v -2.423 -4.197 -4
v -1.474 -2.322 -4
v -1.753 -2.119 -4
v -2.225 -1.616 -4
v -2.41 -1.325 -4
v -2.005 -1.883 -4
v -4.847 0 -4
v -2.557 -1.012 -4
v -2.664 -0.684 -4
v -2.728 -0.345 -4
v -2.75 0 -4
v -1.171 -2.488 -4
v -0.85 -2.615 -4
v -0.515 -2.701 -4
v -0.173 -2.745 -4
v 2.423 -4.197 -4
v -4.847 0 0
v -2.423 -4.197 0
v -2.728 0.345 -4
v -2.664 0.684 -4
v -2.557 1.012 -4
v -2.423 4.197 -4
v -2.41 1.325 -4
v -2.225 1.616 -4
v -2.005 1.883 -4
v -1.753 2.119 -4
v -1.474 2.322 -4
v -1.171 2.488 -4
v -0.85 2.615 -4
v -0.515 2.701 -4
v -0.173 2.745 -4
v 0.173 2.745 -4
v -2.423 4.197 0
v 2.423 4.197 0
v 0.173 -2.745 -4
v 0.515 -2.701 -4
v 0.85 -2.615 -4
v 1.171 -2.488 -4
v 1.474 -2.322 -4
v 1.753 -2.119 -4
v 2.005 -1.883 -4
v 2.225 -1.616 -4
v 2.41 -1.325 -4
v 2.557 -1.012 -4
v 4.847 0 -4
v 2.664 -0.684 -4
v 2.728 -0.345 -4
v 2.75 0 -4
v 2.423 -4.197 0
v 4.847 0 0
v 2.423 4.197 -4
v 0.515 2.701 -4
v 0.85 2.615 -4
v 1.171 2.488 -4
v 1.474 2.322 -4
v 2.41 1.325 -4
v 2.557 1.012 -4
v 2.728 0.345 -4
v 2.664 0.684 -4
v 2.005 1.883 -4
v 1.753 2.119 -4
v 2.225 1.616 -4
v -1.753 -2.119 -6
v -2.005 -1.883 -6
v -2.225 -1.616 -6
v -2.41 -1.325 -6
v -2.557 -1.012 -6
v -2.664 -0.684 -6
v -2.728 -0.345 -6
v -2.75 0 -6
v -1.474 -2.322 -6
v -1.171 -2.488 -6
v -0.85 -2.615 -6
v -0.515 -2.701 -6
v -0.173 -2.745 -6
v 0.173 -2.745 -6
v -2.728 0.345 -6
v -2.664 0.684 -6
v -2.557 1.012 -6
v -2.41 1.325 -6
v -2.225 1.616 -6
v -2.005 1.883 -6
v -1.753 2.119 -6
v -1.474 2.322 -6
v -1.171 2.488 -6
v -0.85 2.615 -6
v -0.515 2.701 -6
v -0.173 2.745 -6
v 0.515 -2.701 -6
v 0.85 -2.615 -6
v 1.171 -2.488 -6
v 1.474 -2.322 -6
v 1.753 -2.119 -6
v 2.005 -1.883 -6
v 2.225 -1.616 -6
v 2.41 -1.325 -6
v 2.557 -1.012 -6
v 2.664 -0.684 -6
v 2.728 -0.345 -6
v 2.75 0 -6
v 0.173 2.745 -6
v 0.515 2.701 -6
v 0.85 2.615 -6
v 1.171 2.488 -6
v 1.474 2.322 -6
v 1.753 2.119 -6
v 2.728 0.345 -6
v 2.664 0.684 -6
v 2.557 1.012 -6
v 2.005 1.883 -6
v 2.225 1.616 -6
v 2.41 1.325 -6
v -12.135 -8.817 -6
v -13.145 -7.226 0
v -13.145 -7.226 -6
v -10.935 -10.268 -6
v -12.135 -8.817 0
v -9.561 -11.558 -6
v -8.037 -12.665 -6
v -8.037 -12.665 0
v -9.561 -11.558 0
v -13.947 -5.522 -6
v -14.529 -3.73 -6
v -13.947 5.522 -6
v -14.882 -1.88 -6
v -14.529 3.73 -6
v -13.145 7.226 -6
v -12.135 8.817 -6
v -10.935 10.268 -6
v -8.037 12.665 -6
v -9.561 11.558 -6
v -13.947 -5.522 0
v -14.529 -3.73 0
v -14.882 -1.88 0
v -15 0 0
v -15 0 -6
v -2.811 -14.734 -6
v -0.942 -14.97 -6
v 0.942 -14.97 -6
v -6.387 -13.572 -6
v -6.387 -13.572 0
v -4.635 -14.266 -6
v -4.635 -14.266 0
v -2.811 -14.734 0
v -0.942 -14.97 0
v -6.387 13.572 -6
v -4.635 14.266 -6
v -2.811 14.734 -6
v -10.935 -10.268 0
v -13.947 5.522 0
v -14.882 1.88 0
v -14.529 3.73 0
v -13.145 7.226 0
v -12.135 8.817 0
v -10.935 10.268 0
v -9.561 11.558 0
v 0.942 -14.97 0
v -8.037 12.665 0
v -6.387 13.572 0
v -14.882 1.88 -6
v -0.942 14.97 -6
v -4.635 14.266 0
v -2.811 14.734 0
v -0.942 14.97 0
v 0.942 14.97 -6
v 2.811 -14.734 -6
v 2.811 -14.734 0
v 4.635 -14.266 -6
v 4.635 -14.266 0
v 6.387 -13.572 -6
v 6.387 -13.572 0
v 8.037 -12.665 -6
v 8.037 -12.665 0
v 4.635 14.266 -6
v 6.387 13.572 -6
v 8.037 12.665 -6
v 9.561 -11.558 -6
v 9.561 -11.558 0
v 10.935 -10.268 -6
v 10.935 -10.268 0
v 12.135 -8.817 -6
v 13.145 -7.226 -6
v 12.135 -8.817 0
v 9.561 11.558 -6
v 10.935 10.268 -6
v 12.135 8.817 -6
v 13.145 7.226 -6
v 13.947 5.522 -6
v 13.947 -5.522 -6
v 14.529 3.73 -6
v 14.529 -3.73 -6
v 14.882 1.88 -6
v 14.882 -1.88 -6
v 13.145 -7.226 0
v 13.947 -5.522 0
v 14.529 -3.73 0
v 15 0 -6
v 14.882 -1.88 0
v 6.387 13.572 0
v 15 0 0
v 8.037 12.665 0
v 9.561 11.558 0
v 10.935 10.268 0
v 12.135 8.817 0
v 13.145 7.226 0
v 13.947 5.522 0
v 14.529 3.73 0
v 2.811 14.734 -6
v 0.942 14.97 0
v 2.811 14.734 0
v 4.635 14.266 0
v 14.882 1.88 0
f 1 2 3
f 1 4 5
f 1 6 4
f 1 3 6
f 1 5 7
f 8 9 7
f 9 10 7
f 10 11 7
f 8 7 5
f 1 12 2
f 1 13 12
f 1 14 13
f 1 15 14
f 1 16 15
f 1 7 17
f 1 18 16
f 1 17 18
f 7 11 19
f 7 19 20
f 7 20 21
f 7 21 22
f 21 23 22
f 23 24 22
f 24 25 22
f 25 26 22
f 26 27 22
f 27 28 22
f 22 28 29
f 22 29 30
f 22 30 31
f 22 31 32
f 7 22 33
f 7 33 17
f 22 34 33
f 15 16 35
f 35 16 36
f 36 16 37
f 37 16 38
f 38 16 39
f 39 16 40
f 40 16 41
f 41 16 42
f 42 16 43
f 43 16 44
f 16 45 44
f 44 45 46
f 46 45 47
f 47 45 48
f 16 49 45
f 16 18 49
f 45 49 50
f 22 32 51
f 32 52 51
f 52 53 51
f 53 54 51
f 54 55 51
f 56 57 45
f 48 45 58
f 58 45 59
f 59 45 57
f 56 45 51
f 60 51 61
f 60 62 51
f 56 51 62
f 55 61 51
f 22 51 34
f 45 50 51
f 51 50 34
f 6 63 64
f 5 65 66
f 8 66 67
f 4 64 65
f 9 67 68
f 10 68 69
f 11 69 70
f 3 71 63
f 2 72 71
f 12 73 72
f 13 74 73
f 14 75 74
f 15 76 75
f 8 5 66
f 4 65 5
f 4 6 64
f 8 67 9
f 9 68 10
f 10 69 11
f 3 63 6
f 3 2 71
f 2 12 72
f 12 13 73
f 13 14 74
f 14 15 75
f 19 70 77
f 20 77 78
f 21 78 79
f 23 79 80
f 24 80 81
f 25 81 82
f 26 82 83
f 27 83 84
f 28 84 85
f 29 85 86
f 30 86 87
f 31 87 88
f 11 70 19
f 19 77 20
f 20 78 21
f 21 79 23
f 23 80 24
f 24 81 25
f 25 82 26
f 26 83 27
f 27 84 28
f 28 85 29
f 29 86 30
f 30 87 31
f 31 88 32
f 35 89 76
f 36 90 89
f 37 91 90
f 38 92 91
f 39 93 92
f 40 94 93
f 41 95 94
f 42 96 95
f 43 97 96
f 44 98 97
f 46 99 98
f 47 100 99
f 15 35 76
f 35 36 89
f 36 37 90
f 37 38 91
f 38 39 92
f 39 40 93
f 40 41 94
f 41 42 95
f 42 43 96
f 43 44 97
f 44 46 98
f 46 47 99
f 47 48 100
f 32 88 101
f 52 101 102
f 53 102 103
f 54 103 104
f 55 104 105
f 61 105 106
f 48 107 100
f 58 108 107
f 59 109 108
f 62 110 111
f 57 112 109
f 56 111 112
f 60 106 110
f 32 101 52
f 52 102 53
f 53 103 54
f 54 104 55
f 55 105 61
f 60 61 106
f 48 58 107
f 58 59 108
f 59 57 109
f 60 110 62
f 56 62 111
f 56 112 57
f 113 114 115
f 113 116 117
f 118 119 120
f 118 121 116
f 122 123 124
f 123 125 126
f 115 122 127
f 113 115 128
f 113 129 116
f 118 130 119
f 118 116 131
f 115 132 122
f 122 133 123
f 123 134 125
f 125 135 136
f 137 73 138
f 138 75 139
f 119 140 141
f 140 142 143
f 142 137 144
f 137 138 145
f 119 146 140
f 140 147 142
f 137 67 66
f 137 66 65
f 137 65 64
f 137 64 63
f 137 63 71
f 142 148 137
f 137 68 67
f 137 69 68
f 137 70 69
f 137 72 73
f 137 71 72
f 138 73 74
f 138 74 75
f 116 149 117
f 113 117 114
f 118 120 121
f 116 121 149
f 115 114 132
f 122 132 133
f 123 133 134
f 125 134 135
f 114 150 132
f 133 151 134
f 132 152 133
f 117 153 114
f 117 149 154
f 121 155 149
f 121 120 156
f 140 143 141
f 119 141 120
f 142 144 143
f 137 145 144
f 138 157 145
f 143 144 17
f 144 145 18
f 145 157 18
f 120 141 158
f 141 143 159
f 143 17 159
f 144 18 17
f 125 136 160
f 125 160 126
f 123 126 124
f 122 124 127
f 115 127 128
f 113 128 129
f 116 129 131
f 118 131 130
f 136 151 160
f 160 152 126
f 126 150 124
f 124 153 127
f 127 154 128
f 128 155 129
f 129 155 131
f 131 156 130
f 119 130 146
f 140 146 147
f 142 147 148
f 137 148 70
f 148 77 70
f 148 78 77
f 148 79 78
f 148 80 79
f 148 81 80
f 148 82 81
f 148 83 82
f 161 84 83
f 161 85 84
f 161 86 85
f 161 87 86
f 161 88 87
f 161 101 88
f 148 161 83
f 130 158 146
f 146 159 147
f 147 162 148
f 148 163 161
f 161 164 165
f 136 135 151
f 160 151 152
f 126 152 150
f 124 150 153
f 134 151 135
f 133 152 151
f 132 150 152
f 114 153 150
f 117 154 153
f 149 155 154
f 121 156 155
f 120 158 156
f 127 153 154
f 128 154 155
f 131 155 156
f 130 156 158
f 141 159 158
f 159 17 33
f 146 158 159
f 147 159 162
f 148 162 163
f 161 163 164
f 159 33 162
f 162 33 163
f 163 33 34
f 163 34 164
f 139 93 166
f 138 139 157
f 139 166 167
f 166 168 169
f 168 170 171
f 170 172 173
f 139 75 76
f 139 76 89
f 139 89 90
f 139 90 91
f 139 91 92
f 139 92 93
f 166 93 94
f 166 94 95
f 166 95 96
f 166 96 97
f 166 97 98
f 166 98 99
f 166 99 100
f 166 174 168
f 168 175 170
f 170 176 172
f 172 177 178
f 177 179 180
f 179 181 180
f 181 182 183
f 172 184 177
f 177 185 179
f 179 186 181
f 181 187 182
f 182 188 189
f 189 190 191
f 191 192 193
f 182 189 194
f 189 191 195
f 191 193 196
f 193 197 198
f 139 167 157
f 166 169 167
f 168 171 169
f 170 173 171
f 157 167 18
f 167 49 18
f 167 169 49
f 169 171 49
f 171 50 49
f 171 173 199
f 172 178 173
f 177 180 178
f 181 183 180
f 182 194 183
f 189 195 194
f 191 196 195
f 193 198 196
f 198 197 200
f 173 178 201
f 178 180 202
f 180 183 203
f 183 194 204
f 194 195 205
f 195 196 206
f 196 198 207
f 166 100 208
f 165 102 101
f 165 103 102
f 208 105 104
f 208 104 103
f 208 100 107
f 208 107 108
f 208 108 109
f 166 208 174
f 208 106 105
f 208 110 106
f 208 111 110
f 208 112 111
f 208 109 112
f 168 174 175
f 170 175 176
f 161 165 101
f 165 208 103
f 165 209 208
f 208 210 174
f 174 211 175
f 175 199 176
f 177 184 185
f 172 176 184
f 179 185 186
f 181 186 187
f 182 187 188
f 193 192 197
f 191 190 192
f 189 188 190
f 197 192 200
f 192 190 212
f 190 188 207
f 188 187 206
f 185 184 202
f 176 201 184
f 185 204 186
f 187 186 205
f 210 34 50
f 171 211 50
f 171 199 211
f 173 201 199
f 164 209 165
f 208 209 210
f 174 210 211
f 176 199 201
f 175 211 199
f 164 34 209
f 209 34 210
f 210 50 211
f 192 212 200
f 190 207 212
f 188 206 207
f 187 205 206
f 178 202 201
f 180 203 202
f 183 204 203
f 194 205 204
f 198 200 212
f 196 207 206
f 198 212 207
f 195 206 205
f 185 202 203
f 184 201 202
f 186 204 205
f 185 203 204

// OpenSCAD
$fn = 50;

difference() {
	union() {
		translate(v = [0, 0, -6.0]) {
			cylinder(h = 6.0, r = 15.0);
		}
	}
	union() {
		translate(v = [0, 0, 0]) {
			rotate(a = [0, 0, 0]) {
				difference() {
					union() {
						translate(v = [0, 0, -4]) {
							linear_extrude(height = 4) {
								polygon(points = [[4.8468, 0.0], [2.4234000000000004, 4.197451927062417], [-2.423399999999999, 4.197451927062417], [-4.8468, 5.935618106107392e-16], [-2.423400000000002, -4.197451927062416], [2.423399999999997, -4.197451927062419]]);
							}
						}
					}
					union();
				}
			}
		}
		#translate(v = [0, 0, -100.0]) {
			cylinder(h = 200, r = 2.75);
		}
	}
}
